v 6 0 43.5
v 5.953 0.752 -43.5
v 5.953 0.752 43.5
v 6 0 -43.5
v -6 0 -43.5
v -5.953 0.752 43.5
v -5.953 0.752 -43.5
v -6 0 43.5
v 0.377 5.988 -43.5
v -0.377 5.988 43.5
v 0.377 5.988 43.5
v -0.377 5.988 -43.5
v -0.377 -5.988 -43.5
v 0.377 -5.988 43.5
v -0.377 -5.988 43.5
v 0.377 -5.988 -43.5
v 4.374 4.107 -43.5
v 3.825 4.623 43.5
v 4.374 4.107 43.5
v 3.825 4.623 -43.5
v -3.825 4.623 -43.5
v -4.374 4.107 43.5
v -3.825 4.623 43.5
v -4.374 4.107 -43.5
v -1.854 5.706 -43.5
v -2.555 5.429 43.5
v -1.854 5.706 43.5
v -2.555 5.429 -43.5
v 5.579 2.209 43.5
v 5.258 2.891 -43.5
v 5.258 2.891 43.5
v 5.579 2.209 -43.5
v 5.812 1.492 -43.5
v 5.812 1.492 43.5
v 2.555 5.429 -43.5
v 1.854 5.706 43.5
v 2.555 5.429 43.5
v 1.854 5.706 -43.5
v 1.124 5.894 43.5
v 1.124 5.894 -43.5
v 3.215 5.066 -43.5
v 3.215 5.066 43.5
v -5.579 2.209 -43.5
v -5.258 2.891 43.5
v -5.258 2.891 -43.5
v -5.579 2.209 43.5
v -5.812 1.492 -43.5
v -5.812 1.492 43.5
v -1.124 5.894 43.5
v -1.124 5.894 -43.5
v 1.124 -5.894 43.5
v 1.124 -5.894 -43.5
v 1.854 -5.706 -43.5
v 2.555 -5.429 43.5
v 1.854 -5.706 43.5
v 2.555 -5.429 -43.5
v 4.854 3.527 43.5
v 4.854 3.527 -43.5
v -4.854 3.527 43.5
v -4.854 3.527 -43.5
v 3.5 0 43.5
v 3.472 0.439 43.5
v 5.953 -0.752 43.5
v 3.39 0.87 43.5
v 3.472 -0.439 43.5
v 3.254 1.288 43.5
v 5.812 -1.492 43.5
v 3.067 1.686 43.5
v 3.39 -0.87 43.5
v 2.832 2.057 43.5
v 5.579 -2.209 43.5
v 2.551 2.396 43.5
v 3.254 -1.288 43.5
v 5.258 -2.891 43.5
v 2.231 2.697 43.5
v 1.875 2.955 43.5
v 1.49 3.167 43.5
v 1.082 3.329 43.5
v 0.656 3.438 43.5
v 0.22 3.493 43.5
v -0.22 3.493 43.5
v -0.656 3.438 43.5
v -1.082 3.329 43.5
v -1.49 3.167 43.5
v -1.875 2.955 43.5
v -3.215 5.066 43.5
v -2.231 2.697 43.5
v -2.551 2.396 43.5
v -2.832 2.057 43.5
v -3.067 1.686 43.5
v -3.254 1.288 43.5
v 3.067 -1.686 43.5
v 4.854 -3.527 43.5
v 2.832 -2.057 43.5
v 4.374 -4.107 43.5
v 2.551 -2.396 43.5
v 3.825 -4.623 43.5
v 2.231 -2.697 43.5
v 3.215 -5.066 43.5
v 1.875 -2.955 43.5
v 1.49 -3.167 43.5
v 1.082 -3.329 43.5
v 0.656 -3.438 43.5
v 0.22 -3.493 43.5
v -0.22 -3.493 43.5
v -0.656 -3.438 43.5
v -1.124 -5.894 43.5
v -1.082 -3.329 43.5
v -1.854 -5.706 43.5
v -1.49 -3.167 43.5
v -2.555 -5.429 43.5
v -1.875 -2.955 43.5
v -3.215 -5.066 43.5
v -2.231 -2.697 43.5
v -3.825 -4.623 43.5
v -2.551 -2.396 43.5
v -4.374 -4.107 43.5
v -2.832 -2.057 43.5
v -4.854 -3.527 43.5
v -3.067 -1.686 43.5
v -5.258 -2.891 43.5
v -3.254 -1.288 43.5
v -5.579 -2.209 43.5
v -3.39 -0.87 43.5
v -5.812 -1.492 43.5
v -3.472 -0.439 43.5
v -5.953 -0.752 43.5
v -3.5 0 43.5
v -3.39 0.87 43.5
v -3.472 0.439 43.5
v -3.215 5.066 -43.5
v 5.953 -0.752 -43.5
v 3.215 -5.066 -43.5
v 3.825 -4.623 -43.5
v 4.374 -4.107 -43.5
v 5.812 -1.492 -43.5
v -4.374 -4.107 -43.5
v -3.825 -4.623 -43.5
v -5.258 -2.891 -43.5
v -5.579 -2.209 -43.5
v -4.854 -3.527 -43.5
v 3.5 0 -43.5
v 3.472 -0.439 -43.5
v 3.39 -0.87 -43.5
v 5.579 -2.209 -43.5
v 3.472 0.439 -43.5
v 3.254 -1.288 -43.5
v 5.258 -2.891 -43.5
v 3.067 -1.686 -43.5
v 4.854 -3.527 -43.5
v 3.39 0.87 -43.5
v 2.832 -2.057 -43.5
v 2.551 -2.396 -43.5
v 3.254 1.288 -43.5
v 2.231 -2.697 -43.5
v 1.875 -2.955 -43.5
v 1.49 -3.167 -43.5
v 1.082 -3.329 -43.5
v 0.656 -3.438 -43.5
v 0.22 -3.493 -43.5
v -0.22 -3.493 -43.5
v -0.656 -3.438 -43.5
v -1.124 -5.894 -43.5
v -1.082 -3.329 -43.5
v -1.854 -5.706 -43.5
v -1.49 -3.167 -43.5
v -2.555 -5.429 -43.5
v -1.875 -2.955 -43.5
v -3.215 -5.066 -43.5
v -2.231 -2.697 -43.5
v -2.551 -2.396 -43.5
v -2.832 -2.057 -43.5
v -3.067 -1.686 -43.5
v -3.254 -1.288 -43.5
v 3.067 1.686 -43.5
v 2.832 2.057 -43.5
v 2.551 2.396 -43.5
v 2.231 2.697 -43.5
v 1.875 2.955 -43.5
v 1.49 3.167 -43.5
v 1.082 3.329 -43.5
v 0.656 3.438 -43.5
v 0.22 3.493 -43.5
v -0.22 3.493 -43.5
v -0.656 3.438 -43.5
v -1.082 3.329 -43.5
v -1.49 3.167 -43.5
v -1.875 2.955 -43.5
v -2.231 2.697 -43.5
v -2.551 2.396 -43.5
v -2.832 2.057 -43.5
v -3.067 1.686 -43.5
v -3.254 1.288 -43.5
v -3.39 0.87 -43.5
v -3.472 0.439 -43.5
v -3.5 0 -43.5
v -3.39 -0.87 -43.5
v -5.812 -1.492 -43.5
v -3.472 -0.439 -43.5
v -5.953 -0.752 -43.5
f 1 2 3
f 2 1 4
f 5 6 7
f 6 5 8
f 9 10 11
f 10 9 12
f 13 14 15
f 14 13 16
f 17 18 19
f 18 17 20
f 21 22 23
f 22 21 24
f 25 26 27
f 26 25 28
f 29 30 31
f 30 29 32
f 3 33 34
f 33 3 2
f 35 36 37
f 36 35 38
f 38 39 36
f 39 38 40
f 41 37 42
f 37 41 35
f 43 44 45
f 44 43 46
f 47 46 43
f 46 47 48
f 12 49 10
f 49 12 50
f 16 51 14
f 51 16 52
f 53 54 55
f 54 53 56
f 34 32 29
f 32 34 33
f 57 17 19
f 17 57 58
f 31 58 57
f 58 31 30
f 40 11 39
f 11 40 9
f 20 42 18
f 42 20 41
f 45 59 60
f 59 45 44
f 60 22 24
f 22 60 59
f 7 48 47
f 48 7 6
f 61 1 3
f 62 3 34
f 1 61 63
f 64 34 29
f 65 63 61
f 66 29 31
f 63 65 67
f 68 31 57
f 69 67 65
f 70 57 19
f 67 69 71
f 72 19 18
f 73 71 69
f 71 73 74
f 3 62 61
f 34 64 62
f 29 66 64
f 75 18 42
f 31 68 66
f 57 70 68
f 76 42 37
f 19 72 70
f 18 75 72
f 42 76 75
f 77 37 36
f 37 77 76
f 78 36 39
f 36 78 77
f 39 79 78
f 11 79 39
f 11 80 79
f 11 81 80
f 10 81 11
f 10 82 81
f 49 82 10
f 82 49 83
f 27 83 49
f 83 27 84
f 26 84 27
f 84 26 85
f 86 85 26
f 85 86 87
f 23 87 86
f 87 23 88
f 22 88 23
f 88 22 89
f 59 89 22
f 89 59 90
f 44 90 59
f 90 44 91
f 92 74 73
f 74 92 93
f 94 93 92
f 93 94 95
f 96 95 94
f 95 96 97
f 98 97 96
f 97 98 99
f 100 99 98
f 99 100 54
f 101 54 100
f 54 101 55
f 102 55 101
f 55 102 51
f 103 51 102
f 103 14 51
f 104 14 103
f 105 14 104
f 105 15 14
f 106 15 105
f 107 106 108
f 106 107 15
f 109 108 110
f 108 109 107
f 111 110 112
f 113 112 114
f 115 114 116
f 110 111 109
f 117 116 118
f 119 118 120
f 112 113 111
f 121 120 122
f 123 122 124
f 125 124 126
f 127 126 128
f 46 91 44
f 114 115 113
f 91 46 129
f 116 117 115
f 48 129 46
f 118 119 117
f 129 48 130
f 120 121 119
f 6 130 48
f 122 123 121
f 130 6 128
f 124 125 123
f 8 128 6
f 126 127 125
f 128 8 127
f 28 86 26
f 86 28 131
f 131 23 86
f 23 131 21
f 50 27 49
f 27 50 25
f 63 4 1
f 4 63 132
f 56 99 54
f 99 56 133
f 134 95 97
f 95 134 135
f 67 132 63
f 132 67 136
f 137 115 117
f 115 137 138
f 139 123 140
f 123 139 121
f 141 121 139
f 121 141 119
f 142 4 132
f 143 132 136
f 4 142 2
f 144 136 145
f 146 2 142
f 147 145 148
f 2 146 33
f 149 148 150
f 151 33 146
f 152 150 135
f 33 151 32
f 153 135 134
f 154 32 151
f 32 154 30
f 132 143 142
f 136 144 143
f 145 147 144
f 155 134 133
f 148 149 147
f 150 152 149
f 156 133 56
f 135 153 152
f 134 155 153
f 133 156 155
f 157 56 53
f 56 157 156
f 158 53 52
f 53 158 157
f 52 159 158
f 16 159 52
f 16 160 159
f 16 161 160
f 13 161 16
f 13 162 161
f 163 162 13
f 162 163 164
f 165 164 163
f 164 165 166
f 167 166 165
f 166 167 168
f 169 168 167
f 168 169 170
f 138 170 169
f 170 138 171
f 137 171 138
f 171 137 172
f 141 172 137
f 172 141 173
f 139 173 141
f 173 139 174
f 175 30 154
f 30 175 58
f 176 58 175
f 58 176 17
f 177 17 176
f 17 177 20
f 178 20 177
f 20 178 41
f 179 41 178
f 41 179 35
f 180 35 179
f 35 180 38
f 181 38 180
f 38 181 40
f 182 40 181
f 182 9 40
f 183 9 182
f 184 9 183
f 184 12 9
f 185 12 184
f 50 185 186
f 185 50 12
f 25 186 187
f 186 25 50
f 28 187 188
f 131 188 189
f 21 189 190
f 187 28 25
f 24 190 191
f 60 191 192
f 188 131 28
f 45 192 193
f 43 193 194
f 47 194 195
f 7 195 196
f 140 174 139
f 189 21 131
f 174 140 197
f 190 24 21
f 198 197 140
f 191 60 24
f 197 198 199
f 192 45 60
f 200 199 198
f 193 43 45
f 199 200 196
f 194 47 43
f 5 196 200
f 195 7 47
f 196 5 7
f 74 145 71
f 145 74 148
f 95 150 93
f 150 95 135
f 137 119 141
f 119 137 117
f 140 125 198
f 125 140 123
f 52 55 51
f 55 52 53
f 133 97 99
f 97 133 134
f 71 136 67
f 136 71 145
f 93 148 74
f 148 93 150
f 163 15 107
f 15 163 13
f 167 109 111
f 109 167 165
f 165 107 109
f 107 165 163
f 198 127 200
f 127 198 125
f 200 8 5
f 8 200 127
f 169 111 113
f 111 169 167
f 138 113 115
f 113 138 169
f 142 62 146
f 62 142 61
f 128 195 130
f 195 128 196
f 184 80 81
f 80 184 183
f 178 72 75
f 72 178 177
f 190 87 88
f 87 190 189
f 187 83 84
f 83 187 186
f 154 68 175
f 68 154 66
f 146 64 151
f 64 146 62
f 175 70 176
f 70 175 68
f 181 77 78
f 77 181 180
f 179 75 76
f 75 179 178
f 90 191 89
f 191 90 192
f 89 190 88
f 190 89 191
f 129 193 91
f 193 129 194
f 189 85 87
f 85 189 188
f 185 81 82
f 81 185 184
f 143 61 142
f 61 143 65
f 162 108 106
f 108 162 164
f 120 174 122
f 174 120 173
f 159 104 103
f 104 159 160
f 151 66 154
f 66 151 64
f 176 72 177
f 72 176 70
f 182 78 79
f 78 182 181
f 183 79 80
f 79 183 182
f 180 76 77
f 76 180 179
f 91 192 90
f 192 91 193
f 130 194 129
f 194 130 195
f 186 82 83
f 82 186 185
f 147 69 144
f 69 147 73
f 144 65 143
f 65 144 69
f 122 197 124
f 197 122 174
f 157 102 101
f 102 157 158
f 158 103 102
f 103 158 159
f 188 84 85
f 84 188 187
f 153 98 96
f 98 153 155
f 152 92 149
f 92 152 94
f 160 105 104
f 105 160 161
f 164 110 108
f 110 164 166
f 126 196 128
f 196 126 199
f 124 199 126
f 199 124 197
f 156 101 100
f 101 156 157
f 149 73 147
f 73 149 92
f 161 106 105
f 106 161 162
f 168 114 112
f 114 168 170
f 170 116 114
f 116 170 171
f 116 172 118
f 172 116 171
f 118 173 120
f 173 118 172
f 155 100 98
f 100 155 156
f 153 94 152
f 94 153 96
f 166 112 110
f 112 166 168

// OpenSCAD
$fn = 50;


difference() {
	union() {
		translate(v = [0, 0, -43.5000000000]) {
			cylinder(h = 87, r = 6.0000000000);
		}
	}
	union() {
		translate(v = [0, 0, -100.0000000000]) {
			cylinder(h = 200, r = 3.5000000000);
		}
	}
}
